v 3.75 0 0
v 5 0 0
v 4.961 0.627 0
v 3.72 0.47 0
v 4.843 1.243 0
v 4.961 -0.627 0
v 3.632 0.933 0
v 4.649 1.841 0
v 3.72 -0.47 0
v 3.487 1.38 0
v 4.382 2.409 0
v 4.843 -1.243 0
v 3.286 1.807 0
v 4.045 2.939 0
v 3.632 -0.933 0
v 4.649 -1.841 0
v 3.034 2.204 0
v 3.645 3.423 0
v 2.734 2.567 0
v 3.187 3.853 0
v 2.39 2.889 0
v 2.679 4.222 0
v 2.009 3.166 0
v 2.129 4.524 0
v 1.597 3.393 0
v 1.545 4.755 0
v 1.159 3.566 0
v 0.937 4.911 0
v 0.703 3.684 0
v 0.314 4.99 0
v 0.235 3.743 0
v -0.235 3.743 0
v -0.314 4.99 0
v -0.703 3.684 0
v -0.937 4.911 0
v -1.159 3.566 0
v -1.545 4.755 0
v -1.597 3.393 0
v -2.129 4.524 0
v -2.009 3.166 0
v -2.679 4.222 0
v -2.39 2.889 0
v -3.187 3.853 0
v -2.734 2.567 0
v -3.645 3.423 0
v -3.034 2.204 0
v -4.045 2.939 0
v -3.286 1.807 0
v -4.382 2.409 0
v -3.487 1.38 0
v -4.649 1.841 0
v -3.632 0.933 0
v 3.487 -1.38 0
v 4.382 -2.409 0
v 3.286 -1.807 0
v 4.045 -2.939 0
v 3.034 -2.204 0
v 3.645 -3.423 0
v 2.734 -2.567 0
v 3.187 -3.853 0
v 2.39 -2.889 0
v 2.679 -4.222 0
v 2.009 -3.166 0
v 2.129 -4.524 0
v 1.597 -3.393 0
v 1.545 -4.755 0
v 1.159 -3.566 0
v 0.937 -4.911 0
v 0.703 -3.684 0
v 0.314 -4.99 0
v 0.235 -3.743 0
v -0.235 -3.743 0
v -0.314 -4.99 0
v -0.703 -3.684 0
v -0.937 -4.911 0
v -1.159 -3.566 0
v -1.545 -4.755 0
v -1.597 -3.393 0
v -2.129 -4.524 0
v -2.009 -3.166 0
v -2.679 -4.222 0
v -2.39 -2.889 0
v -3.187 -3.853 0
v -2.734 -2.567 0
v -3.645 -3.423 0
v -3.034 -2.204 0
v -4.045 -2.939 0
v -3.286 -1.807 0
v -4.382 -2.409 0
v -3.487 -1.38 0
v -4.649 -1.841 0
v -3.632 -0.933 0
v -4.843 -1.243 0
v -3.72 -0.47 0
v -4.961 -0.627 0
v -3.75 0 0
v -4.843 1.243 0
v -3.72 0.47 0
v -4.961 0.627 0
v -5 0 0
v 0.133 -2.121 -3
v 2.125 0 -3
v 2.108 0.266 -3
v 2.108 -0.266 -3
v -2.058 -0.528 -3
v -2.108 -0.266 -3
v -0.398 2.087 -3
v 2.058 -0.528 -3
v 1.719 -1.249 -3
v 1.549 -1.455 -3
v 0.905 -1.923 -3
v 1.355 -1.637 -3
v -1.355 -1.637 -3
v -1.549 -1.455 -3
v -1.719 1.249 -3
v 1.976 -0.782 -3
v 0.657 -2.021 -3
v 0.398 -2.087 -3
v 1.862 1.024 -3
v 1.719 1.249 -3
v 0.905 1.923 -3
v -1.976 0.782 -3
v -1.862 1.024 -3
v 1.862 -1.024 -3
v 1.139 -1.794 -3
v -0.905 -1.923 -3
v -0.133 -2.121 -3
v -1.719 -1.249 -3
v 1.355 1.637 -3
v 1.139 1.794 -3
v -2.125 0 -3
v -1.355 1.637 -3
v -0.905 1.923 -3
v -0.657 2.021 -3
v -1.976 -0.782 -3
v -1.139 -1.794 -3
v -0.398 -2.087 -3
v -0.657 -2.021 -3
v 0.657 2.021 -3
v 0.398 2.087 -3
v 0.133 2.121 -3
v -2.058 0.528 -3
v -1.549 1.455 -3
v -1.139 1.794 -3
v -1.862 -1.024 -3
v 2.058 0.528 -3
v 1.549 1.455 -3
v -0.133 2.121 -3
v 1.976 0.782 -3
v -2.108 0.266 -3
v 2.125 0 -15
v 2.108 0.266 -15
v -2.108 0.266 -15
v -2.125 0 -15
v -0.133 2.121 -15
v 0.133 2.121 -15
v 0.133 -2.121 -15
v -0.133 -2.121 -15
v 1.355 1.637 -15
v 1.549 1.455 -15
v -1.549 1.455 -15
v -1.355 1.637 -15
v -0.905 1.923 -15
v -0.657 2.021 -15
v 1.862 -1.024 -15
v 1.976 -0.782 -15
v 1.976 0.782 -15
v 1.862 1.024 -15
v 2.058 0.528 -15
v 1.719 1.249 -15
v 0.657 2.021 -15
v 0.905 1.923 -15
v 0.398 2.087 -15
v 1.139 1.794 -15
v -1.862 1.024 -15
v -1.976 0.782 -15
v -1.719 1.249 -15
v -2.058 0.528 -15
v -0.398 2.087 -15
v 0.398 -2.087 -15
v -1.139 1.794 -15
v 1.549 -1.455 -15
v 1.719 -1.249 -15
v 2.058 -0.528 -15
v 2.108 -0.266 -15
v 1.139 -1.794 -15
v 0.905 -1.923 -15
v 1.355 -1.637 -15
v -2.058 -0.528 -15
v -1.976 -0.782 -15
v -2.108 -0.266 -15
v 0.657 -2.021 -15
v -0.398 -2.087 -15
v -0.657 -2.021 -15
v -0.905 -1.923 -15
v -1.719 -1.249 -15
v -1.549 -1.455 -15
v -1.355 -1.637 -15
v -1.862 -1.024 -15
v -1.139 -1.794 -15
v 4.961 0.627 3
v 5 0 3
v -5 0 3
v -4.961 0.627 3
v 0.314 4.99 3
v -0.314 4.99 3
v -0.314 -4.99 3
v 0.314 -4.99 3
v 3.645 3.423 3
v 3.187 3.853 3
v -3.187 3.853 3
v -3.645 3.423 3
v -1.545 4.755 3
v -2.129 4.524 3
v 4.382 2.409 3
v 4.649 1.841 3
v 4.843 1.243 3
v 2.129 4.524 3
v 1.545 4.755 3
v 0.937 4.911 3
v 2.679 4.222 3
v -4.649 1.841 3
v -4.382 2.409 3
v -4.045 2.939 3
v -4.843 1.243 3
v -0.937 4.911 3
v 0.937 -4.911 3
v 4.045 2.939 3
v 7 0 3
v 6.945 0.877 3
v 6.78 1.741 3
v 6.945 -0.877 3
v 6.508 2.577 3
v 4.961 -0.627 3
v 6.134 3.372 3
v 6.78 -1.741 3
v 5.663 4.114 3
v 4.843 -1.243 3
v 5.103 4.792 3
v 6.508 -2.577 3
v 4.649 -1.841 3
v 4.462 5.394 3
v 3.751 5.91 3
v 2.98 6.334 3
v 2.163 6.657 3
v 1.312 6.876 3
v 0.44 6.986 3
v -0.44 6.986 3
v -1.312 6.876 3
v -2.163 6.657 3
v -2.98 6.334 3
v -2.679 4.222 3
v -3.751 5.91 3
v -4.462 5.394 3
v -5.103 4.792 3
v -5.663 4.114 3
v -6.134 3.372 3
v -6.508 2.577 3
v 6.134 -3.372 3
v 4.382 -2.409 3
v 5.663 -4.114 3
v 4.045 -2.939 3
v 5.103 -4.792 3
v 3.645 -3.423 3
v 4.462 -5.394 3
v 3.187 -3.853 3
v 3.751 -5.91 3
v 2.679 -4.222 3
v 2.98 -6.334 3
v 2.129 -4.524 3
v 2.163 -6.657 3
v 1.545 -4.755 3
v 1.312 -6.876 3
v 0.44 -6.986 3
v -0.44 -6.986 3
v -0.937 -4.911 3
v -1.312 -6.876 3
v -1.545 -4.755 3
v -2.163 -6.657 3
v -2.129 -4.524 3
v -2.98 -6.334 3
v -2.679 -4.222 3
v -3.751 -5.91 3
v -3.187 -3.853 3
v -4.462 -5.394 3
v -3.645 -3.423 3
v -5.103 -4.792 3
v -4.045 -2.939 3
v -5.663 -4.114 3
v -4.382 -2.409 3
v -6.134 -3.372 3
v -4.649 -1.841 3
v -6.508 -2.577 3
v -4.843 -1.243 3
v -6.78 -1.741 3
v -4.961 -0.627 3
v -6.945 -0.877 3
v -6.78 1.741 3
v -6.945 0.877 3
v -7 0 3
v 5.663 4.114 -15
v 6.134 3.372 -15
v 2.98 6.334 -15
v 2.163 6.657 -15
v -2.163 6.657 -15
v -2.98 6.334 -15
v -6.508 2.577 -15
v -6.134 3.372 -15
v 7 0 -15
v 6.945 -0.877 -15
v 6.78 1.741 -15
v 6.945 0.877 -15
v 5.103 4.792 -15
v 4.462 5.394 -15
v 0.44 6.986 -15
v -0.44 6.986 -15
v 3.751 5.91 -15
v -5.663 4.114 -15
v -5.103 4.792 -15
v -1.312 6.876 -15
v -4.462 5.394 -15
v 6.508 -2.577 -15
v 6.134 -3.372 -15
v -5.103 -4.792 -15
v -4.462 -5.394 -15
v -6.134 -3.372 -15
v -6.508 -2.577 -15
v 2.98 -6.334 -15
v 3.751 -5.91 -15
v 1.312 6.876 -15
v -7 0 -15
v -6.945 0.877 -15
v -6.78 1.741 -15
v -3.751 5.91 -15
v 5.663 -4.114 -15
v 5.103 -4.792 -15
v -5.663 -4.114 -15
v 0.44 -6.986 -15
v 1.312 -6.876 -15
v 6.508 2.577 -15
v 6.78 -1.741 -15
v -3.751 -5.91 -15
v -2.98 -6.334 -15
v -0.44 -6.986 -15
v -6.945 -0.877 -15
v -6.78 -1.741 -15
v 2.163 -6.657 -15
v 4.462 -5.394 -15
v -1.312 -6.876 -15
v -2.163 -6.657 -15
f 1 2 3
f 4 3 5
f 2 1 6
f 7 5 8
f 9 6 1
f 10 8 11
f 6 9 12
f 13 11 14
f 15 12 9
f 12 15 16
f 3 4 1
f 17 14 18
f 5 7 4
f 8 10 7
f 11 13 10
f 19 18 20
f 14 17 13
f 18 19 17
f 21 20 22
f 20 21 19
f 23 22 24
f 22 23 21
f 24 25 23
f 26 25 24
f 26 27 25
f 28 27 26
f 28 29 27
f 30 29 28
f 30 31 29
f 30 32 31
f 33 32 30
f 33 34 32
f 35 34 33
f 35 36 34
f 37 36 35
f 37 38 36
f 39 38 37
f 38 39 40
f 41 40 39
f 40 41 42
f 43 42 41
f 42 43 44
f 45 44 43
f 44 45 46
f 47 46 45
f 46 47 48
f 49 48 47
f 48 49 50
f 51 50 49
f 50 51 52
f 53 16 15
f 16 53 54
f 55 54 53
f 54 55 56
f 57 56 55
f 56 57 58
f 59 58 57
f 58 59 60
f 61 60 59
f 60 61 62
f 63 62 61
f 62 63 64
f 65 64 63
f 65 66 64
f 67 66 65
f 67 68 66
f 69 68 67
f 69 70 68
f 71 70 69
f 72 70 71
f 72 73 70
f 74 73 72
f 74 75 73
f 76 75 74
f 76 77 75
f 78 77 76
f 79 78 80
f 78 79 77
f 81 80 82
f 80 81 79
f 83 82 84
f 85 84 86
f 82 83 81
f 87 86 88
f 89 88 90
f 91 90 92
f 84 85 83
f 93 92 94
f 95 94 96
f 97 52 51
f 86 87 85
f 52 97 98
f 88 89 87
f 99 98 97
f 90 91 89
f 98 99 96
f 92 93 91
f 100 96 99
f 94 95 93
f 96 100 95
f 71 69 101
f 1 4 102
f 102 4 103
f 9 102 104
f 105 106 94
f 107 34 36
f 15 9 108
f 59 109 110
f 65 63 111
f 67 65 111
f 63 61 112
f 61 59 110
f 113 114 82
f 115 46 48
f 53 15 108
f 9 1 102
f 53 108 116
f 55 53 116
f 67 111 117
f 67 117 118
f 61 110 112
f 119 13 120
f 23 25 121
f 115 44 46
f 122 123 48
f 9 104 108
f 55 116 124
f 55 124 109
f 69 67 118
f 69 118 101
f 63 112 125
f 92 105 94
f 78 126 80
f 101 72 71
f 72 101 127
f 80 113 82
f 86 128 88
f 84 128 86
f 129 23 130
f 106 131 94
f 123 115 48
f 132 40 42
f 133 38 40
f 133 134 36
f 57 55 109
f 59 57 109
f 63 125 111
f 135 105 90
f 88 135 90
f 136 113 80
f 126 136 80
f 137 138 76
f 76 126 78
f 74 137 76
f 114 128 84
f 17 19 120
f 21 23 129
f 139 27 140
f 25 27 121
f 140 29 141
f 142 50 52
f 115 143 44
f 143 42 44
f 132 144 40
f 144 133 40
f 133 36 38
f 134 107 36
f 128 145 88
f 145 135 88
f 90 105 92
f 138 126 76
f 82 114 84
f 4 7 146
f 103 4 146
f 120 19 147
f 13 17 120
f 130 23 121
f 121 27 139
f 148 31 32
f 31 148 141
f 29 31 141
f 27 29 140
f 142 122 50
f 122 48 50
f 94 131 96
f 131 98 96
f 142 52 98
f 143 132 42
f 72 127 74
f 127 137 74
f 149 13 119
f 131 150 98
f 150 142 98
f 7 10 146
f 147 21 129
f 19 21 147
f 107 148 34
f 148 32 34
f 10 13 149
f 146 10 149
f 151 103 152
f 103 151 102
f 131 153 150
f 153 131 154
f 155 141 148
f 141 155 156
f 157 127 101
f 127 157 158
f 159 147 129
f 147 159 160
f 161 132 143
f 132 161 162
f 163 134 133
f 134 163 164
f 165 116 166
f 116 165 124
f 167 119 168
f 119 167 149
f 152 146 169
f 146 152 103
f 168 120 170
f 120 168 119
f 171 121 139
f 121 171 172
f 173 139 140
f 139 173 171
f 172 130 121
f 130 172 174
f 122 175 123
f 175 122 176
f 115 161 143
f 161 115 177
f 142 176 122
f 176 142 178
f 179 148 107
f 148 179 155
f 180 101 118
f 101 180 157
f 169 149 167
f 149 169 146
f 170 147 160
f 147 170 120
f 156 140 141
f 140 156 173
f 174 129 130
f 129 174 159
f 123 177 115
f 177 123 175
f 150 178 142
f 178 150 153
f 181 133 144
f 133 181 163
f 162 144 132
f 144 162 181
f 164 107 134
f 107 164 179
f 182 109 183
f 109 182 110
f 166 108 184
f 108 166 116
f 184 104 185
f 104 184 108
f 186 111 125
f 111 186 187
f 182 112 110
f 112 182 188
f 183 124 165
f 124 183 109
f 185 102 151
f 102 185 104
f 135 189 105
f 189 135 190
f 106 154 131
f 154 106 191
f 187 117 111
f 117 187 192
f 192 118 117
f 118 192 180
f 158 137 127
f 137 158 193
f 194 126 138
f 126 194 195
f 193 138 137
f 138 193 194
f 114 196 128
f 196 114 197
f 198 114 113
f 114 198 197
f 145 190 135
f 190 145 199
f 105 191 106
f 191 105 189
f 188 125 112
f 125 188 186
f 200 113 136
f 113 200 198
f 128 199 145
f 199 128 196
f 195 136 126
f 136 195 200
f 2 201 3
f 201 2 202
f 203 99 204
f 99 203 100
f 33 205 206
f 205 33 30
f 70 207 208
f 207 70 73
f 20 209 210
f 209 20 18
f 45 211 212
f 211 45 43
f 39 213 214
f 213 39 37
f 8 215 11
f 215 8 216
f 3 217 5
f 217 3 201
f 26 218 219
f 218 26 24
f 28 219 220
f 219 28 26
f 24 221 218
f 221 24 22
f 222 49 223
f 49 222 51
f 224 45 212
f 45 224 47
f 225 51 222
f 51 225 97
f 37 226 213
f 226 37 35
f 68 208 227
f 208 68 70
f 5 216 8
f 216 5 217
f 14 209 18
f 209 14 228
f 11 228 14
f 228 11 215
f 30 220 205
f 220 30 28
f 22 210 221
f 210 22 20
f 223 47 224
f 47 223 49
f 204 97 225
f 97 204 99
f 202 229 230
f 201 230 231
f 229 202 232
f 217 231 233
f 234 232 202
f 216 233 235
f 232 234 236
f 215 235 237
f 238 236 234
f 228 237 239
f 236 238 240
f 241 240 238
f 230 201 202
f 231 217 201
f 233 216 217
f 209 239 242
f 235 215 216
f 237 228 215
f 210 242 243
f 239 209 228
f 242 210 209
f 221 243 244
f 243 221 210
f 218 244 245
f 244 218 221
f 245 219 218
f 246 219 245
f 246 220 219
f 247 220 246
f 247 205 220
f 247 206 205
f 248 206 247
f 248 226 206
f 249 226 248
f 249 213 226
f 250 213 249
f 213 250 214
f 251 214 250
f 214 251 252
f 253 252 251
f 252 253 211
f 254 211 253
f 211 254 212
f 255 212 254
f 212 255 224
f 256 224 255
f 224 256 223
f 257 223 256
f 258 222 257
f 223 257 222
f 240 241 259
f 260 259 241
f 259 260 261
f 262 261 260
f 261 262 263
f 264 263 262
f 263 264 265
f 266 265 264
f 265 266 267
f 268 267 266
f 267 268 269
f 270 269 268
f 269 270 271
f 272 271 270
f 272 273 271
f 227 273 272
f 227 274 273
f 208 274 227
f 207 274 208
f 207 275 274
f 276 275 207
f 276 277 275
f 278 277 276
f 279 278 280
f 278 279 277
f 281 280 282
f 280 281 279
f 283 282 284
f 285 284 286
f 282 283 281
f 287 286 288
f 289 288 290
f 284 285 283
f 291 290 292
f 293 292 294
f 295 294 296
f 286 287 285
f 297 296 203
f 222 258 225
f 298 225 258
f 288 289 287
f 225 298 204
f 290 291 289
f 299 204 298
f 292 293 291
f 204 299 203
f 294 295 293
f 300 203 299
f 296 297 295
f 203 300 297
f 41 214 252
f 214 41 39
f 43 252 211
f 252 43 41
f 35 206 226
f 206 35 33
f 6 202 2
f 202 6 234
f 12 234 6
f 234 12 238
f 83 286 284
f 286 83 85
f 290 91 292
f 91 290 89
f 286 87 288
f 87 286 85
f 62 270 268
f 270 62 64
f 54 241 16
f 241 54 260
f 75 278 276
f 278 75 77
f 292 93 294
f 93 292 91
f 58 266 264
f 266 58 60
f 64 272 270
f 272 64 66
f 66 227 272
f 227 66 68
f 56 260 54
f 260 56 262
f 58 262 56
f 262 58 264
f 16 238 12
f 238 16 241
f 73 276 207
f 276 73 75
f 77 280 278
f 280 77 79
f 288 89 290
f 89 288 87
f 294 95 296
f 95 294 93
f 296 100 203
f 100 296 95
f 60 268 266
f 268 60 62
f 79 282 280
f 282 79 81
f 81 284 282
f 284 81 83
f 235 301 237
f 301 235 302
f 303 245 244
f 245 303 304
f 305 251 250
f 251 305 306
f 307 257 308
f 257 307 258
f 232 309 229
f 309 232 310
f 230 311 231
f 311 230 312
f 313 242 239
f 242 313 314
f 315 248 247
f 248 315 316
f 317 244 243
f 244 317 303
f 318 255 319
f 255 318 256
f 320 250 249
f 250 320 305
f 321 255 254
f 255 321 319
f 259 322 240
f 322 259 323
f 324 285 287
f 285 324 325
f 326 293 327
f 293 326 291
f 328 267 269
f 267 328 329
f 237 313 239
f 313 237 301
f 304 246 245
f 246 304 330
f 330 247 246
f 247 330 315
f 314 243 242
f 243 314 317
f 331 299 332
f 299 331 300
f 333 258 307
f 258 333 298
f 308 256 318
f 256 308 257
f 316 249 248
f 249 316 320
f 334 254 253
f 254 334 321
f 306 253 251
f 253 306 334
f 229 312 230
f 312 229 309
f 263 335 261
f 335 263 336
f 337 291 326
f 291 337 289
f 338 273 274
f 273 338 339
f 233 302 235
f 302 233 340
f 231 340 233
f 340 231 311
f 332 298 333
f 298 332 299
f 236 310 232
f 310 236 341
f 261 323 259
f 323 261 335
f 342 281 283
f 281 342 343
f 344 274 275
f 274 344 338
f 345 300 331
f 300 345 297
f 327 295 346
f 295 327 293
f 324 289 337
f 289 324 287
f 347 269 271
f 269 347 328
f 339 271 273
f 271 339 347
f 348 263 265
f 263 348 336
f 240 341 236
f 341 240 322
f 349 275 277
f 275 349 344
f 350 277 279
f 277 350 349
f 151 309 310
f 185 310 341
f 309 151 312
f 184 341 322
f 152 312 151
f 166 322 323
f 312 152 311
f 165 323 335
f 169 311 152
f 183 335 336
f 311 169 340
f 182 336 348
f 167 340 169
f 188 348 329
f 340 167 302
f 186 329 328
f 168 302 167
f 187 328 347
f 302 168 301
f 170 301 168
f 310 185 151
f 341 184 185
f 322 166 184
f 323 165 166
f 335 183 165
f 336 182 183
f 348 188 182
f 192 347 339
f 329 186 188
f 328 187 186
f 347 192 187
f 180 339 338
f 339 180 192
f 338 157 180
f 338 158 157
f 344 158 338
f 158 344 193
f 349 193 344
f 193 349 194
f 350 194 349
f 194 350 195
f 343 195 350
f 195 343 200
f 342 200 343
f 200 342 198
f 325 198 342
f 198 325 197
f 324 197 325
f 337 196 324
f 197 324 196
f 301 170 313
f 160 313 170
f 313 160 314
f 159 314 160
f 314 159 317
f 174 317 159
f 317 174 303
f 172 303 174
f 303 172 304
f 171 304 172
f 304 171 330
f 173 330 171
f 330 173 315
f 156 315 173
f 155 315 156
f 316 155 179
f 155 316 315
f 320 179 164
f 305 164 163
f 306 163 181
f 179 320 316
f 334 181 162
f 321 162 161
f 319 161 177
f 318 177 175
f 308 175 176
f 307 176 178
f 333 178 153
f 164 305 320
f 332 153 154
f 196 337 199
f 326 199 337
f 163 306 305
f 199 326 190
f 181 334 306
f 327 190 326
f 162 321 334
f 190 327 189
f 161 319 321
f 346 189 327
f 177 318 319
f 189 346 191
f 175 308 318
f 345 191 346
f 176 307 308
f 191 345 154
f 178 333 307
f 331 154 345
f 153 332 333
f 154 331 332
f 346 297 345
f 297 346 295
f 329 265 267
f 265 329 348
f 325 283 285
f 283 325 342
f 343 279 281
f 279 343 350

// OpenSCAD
$fn = 50;


difference() {
	union() {
		translate(v = [0, 0, -15.0000000000]) {
			cylinder(h = 18, r = 7.0000000000);
		}
	}
	union() {
		translate(v = [0, 0, 0]) {
			rotate(a = [0, 0, 0]) {
				difference() {
					union() {
						translate(v = [0, 0, -18.0000000000]) {
							cylinder(h = 18, r = 2.0000000000);
						}
						translate(v = [0, 0, -3]) {
							cylinder(h = 3, r1 = 2.1250000000, r2 = 3.7500000000);
						}
						translate(v = [0, 0, -18.0000000000]) {
							cylinder(h = 18, r = 2.1250000000);
						}
						translate(v = [0, 0, -18.0000000000]) {
							cylinder(h = 18, r = 2.0000000000);
						}
					}
					union();
				}
			}
		}
		#cylinder(h = 3, r = 5.0000000000);
	}
}
